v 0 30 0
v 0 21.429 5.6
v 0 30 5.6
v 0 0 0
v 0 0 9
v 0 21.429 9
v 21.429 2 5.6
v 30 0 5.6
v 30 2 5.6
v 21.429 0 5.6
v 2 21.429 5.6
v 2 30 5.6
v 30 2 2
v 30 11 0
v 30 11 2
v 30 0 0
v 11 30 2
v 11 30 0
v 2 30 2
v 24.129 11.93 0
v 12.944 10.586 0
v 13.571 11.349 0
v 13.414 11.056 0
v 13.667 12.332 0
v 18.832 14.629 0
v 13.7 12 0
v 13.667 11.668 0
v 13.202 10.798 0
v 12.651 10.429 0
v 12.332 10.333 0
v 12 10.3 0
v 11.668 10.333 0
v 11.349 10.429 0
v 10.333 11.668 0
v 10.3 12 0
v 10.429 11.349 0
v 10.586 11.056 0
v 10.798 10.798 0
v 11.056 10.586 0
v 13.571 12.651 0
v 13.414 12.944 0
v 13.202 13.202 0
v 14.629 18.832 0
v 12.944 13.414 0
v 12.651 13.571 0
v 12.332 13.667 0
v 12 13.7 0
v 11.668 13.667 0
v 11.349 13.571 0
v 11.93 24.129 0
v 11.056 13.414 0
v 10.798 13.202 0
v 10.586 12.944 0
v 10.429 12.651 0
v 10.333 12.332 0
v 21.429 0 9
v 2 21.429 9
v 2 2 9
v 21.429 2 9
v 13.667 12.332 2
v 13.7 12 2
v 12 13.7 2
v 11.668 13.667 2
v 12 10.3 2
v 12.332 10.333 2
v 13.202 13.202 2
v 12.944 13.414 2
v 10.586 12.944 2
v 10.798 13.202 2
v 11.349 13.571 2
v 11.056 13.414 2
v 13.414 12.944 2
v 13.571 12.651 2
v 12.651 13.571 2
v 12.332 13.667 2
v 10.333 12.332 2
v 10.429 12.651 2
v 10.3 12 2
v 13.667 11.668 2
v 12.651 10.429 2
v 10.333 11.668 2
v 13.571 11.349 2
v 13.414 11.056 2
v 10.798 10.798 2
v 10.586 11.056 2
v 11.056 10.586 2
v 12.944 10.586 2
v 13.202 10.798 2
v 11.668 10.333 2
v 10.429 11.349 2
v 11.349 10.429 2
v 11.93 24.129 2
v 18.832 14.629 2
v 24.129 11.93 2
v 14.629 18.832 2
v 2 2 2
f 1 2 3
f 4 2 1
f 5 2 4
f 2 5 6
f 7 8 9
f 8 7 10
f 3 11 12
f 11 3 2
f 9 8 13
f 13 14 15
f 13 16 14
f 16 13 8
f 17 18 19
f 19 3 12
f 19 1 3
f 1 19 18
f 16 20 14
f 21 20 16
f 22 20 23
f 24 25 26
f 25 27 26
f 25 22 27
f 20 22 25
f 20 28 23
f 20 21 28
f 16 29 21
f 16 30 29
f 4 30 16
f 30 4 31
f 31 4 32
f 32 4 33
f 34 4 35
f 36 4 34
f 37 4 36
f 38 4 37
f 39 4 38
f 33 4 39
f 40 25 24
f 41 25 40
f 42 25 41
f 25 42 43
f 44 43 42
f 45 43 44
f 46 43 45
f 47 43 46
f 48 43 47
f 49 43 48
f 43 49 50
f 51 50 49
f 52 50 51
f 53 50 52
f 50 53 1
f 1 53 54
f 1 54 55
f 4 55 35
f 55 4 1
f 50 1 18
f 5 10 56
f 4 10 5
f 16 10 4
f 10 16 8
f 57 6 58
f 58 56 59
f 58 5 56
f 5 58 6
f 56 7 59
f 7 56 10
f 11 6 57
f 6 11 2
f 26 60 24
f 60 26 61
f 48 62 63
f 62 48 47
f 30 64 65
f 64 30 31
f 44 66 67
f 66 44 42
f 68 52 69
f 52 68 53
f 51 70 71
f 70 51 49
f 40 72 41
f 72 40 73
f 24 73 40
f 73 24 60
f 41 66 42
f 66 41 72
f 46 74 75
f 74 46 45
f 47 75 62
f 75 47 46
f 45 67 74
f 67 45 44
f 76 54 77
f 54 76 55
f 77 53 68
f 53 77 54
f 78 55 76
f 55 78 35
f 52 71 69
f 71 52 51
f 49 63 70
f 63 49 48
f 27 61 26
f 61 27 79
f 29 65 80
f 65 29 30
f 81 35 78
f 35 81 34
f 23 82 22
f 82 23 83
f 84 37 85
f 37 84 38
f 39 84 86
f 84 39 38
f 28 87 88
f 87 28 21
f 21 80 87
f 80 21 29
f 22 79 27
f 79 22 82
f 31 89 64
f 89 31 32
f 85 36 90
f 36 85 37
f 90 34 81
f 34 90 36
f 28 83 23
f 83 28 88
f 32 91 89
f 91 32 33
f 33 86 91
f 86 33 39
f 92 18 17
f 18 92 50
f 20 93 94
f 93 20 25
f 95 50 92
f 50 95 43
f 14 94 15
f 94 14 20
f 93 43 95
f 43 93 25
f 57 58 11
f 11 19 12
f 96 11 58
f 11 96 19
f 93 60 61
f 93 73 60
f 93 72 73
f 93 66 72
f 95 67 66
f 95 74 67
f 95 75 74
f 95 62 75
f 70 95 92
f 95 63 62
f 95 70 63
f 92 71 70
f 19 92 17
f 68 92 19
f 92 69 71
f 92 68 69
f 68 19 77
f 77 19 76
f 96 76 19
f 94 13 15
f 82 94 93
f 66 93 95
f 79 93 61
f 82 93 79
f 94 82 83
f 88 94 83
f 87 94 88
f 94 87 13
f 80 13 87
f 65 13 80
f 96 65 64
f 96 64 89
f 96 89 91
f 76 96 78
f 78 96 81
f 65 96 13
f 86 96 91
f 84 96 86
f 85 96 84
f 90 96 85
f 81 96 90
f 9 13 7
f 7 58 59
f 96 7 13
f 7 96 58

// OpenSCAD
$fn=32;

boltX = 12;
boltY = 12;
boltDia = 3.4;

cx = 30;
cy = 30;
cz = 5.6;

mcx = cx/1.4;
mcy = cy/1.4;
mcz = 9;

fascX = 2;
fascY = 2;
fascZ = 2;

sliceX = 0;
sliceY = 0;
sliceDia = 38;

difference() {
  union() {
    cube([cx, cy, cz]);
    cube([mcx, mcy, mcz]);
  }
  color("Blue") {
      translate([fascX, fascY, fascZ]) cube([cx, cy, cz*2]);
  }
  color("Red") {
    translate([boltX, boltY, -10]) cylinder(d=boltDia, h=50);
    translate([cx + sliceX, cy + sliceY, -cz]) cylinder(d=sliceDia, h=cz*3, $fn=20);
  }
}
